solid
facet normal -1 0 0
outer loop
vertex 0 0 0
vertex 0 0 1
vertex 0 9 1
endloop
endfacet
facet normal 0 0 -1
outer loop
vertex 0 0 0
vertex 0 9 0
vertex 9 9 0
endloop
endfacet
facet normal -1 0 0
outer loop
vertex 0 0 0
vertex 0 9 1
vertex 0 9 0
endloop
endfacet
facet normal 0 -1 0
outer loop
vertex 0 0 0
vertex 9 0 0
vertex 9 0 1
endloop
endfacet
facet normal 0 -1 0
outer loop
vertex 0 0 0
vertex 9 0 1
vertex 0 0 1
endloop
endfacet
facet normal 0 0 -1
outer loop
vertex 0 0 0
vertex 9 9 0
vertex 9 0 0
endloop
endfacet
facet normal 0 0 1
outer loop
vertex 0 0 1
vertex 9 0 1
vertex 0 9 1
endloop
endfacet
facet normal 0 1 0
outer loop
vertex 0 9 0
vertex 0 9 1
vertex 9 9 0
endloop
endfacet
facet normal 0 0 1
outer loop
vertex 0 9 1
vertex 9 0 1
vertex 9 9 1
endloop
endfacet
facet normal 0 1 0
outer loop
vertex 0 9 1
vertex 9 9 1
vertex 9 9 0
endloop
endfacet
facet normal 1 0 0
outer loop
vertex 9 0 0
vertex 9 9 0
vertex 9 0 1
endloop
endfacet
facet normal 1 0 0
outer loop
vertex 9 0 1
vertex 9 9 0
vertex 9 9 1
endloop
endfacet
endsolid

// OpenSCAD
/* Warning, this is a very basic generator with a lot of approximation 
input data : [VQFN, TNB, 9x9x1mm, 64, , A, C04-21441A]
generated by com.zoubworld.electronics.cad.model3d.Basic
Date : Sun Feb 15 10:50:49 CET 2026
*/

//body
color("black")
translate([0,0,0])
cube([9.0,9.0,1.0], center=false);
